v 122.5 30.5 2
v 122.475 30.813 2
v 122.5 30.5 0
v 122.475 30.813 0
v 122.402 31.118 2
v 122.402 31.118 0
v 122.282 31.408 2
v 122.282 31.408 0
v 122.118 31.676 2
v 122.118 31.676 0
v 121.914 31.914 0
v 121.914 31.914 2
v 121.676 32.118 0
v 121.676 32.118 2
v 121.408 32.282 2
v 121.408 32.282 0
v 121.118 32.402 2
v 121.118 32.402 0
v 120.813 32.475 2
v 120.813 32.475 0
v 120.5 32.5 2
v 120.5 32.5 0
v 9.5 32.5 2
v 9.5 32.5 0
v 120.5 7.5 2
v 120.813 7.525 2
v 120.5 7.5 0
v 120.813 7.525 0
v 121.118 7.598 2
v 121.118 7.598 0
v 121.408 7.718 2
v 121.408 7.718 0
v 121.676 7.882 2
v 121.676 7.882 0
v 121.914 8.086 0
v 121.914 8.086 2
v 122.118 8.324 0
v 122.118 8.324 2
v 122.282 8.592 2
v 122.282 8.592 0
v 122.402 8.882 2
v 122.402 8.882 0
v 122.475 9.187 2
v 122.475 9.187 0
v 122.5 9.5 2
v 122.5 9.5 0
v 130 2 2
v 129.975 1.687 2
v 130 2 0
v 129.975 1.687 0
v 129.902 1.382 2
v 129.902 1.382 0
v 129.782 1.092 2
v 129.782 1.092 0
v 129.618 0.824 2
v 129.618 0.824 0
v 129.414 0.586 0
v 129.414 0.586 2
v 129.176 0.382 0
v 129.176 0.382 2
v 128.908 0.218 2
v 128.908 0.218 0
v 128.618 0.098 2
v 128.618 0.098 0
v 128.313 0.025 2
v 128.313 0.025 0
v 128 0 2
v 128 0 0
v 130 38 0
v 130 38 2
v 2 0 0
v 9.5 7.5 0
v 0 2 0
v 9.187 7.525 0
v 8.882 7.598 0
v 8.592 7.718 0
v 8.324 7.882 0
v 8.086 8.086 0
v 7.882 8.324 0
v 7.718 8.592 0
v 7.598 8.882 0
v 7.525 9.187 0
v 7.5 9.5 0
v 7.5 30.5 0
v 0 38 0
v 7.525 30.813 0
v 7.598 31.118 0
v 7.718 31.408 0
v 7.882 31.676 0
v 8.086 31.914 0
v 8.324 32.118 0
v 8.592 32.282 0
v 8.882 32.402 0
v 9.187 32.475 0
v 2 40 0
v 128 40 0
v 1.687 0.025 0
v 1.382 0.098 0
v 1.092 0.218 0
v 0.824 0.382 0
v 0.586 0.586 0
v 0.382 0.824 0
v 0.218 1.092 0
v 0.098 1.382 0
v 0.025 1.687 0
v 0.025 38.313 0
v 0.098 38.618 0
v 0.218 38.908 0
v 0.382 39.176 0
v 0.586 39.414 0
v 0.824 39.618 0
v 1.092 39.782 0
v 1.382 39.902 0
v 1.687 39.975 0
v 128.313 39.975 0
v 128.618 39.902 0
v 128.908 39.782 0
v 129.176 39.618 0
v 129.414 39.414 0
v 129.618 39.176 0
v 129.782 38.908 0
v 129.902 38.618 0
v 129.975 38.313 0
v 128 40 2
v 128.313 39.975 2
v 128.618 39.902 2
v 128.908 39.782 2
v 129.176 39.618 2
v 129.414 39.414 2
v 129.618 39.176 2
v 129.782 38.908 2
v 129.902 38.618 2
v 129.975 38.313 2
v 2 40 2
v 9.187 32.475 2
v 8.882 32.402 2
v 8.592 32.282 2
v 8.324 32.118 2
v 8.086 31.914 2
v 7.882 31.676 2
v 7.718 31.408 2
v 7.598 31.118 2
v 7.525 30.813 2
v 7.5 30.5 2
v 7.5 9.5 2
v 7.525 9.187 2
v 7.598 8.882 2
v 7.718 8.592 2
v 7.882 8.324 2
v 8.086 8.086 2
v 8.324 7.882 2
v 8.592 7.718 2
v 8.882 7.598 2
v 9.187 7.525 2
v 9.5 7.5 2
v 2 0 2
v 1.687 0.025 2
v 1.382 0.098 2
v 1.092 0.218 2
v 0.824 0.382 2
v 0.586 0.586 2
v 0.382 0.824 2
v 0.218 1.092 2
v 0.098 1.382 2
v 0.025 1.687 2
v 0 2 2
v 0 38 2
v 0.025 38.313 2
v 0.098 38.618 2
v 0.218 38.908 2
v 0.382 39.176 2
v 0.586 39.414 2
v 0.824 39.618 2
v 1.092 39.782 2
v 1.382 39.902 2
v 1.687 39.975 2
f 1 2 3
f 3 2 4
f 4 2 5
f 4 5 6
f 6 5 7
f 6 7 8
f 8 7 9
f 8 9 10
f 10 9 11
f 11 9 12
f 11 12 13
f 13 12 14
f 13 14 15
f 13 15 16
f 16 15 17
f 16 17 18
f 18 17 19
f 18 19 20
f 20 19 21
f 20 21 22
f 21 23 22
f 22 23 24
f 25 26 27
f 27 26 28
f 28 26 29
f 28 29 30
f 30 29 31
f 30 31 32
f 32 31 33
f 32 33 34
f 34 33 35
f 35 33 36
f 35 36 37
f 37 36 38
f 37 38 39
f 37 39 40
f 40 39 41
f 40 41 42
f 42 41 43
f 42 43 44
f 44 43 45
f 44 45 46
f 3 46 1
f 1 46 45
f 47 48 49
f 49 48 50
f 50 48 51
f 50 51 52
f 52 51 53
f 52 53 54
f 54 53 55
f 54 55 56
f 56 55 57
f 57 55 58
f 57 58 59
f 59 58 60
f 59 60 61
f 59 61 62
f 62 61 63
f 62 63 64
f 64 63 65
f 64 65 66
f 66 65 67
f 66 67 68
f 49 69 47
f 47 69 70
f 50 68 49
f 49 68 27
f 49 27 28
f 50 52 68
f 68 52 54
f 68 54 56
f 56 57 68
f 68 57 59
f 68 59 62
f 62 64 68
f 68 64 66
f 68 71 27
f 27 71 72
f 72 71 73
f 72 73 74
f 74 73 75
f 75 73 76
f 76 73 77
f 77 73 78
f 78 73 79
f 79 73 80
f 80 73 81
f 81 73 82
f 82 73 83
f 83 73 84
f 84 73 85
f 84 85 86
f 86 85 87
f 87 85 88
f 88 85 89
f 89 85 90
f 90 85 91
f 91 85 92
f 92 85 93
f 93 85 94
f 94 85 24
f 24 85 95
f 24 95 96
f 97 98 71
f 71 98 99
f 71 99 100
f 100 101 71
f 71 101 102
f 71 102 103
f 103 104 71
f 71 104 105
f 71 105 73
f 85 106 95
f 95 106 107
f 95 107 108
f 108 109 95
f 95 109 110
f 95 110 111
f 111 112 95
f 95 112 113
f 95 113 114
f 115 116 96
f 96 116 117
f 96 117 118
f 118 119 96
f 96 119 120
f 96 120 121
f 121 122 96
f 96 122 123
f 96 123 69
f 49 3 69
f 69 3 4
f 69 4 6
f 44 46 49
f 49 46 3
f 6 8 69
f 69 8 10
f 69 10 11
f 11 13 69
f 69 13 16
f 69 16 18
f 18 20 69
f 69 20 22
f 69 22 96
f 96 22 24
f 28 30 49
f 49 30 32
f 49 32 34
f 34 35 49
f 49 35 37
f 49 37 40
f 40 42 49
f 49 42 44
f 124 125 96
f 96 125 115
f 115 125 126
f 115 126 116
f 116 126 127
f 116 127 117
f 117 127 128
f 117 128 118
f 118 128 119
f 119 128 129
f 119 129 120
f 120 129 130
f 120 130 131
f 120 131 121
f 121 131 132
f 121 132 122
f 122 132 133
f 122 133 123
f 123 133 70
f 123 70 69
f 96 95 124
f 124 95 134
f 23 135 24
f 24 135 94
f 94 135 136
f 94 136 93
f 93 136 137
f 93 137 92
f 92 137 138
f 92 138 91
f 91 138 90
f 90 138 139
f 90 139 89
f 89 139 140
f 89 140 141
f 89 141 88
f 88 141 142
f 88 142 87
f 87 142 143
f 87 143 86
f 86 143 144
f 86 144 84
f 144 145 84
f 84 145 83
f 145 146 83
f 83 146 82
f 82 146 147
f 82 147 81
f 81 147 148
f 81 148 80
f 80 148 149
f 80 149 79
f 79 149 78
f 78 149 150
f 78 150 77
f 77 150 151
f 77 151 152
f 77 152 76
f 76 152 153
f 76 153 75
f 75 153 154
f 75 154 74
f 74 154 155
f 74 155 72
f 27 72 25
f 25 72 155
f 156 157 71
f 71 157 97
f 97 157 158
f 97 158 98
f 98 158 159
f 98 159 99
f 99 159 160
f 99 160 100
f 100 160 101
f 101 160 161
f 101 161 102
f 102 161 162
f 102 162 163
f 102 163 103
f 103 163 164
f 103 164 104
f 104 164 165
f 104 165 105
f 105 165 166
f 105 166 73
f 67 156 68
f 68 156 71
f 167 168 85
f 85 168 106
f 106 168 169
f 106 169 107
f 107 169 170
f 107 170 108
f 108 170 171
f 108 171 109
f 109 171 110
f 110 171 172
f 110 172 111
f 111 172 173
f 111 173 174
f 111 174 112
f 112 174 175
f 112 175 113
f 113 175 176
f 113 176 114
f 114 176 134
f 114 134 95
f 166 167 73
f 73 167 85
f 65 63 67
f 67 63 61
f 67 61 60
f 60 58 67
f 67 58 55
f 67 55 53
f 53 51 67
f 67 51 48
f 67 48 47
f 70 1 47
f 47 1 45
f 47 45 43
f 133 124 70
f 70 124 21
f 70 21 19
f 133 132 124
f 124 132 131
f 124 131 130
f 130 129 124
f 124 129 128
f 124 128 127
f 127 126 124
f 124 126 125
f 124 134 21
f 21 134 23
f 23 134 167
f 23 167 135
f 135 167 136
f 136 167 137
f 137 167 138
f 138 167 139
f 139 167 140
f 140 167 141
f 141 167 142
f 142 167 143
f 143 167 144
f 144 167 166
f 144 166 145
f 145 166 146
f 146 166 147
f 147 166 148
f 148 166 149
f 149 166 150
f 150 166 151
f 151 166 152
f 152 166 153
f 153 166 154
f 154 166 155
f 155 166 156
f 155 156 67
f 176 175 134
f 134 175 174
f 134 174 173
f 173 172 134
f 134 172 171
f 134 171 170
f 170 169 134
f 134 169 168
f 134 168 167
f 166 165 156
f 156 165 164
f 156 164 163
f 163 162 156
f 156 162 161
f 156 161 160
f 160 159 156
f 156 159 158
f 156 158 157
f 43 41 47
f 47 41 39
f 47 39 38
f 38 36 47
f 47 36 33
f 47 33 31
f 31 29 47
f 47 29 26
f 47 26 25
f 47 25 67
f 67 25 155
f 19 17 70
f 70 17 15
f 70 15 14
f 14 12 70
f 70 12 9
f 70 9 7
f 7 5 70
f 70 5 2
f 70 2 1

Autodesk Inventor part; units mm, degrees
ref_plane "YZ Plane" through (0, 0, 0) normal (1, 0, 0) x (0, 1, 0)
ref_plane "XZ Plane" through (0, 0, 0) normal (0, 1, 0) x (-1, 0, 0)
ref_plane "XY Plane" through (0, 0, 0) normal (0, 0, 1) x (1, 0, 0)
sketch "スケッチ1" plane through (0, 0, 0) normal (0, 0, 1) x (1, 0, 0)
  line L0 (0, 0) -> (130, 0)
  line L1 (130, 0) -> (130, 40)
  line L2 (130, 40) -> (0, 40)
  line L3 (0, 40) -> (0, 0)
  dimension "d0" = 130
  dimension "d1" = 40
extrude "押し出し1" add sketch "スケッチ1" along normal blind 2
sketch "スケッチ2" plane through (0, 0, 2) normal (0, 0, 1) x (1, 0, 0)
  line L0 (130, 40) -> (0, 40) projected
  line L1 (0, 40) -> (130, 40)
  line L2 (130, 40) -> (130, 0)
  line L3 (130, 0) -> (0, 0)
  line L4 (0, 0) -> (0, 40)
  line L5 (7.5, 7.5) -> (122.5, 7.5)
  line L6 (122.5, 7.5) -> (122.5, 32.5)
  line L7 (122.5, 32.5) -> (7.5, 32.5)
  line L8 (7.5, 32.5) -> (7.5, 7.5)
  dimension "d4" = 7.5
extrude "押し出し2" cut sketch "スケッチ2" against normal blind 2 contours L8 L7 L6 L5
fillet "フィレット1" radius 2 8 edges at (0, 40, 1) (0, 0, 1) (7.5, 7.5, 1) (7.5, 32.5, 1) (130, 40, 1) (130, 0, 1) (122.5, 7.5, 1) (122.5, 32.5, 1)
properties part number "smaho_mount_board"
